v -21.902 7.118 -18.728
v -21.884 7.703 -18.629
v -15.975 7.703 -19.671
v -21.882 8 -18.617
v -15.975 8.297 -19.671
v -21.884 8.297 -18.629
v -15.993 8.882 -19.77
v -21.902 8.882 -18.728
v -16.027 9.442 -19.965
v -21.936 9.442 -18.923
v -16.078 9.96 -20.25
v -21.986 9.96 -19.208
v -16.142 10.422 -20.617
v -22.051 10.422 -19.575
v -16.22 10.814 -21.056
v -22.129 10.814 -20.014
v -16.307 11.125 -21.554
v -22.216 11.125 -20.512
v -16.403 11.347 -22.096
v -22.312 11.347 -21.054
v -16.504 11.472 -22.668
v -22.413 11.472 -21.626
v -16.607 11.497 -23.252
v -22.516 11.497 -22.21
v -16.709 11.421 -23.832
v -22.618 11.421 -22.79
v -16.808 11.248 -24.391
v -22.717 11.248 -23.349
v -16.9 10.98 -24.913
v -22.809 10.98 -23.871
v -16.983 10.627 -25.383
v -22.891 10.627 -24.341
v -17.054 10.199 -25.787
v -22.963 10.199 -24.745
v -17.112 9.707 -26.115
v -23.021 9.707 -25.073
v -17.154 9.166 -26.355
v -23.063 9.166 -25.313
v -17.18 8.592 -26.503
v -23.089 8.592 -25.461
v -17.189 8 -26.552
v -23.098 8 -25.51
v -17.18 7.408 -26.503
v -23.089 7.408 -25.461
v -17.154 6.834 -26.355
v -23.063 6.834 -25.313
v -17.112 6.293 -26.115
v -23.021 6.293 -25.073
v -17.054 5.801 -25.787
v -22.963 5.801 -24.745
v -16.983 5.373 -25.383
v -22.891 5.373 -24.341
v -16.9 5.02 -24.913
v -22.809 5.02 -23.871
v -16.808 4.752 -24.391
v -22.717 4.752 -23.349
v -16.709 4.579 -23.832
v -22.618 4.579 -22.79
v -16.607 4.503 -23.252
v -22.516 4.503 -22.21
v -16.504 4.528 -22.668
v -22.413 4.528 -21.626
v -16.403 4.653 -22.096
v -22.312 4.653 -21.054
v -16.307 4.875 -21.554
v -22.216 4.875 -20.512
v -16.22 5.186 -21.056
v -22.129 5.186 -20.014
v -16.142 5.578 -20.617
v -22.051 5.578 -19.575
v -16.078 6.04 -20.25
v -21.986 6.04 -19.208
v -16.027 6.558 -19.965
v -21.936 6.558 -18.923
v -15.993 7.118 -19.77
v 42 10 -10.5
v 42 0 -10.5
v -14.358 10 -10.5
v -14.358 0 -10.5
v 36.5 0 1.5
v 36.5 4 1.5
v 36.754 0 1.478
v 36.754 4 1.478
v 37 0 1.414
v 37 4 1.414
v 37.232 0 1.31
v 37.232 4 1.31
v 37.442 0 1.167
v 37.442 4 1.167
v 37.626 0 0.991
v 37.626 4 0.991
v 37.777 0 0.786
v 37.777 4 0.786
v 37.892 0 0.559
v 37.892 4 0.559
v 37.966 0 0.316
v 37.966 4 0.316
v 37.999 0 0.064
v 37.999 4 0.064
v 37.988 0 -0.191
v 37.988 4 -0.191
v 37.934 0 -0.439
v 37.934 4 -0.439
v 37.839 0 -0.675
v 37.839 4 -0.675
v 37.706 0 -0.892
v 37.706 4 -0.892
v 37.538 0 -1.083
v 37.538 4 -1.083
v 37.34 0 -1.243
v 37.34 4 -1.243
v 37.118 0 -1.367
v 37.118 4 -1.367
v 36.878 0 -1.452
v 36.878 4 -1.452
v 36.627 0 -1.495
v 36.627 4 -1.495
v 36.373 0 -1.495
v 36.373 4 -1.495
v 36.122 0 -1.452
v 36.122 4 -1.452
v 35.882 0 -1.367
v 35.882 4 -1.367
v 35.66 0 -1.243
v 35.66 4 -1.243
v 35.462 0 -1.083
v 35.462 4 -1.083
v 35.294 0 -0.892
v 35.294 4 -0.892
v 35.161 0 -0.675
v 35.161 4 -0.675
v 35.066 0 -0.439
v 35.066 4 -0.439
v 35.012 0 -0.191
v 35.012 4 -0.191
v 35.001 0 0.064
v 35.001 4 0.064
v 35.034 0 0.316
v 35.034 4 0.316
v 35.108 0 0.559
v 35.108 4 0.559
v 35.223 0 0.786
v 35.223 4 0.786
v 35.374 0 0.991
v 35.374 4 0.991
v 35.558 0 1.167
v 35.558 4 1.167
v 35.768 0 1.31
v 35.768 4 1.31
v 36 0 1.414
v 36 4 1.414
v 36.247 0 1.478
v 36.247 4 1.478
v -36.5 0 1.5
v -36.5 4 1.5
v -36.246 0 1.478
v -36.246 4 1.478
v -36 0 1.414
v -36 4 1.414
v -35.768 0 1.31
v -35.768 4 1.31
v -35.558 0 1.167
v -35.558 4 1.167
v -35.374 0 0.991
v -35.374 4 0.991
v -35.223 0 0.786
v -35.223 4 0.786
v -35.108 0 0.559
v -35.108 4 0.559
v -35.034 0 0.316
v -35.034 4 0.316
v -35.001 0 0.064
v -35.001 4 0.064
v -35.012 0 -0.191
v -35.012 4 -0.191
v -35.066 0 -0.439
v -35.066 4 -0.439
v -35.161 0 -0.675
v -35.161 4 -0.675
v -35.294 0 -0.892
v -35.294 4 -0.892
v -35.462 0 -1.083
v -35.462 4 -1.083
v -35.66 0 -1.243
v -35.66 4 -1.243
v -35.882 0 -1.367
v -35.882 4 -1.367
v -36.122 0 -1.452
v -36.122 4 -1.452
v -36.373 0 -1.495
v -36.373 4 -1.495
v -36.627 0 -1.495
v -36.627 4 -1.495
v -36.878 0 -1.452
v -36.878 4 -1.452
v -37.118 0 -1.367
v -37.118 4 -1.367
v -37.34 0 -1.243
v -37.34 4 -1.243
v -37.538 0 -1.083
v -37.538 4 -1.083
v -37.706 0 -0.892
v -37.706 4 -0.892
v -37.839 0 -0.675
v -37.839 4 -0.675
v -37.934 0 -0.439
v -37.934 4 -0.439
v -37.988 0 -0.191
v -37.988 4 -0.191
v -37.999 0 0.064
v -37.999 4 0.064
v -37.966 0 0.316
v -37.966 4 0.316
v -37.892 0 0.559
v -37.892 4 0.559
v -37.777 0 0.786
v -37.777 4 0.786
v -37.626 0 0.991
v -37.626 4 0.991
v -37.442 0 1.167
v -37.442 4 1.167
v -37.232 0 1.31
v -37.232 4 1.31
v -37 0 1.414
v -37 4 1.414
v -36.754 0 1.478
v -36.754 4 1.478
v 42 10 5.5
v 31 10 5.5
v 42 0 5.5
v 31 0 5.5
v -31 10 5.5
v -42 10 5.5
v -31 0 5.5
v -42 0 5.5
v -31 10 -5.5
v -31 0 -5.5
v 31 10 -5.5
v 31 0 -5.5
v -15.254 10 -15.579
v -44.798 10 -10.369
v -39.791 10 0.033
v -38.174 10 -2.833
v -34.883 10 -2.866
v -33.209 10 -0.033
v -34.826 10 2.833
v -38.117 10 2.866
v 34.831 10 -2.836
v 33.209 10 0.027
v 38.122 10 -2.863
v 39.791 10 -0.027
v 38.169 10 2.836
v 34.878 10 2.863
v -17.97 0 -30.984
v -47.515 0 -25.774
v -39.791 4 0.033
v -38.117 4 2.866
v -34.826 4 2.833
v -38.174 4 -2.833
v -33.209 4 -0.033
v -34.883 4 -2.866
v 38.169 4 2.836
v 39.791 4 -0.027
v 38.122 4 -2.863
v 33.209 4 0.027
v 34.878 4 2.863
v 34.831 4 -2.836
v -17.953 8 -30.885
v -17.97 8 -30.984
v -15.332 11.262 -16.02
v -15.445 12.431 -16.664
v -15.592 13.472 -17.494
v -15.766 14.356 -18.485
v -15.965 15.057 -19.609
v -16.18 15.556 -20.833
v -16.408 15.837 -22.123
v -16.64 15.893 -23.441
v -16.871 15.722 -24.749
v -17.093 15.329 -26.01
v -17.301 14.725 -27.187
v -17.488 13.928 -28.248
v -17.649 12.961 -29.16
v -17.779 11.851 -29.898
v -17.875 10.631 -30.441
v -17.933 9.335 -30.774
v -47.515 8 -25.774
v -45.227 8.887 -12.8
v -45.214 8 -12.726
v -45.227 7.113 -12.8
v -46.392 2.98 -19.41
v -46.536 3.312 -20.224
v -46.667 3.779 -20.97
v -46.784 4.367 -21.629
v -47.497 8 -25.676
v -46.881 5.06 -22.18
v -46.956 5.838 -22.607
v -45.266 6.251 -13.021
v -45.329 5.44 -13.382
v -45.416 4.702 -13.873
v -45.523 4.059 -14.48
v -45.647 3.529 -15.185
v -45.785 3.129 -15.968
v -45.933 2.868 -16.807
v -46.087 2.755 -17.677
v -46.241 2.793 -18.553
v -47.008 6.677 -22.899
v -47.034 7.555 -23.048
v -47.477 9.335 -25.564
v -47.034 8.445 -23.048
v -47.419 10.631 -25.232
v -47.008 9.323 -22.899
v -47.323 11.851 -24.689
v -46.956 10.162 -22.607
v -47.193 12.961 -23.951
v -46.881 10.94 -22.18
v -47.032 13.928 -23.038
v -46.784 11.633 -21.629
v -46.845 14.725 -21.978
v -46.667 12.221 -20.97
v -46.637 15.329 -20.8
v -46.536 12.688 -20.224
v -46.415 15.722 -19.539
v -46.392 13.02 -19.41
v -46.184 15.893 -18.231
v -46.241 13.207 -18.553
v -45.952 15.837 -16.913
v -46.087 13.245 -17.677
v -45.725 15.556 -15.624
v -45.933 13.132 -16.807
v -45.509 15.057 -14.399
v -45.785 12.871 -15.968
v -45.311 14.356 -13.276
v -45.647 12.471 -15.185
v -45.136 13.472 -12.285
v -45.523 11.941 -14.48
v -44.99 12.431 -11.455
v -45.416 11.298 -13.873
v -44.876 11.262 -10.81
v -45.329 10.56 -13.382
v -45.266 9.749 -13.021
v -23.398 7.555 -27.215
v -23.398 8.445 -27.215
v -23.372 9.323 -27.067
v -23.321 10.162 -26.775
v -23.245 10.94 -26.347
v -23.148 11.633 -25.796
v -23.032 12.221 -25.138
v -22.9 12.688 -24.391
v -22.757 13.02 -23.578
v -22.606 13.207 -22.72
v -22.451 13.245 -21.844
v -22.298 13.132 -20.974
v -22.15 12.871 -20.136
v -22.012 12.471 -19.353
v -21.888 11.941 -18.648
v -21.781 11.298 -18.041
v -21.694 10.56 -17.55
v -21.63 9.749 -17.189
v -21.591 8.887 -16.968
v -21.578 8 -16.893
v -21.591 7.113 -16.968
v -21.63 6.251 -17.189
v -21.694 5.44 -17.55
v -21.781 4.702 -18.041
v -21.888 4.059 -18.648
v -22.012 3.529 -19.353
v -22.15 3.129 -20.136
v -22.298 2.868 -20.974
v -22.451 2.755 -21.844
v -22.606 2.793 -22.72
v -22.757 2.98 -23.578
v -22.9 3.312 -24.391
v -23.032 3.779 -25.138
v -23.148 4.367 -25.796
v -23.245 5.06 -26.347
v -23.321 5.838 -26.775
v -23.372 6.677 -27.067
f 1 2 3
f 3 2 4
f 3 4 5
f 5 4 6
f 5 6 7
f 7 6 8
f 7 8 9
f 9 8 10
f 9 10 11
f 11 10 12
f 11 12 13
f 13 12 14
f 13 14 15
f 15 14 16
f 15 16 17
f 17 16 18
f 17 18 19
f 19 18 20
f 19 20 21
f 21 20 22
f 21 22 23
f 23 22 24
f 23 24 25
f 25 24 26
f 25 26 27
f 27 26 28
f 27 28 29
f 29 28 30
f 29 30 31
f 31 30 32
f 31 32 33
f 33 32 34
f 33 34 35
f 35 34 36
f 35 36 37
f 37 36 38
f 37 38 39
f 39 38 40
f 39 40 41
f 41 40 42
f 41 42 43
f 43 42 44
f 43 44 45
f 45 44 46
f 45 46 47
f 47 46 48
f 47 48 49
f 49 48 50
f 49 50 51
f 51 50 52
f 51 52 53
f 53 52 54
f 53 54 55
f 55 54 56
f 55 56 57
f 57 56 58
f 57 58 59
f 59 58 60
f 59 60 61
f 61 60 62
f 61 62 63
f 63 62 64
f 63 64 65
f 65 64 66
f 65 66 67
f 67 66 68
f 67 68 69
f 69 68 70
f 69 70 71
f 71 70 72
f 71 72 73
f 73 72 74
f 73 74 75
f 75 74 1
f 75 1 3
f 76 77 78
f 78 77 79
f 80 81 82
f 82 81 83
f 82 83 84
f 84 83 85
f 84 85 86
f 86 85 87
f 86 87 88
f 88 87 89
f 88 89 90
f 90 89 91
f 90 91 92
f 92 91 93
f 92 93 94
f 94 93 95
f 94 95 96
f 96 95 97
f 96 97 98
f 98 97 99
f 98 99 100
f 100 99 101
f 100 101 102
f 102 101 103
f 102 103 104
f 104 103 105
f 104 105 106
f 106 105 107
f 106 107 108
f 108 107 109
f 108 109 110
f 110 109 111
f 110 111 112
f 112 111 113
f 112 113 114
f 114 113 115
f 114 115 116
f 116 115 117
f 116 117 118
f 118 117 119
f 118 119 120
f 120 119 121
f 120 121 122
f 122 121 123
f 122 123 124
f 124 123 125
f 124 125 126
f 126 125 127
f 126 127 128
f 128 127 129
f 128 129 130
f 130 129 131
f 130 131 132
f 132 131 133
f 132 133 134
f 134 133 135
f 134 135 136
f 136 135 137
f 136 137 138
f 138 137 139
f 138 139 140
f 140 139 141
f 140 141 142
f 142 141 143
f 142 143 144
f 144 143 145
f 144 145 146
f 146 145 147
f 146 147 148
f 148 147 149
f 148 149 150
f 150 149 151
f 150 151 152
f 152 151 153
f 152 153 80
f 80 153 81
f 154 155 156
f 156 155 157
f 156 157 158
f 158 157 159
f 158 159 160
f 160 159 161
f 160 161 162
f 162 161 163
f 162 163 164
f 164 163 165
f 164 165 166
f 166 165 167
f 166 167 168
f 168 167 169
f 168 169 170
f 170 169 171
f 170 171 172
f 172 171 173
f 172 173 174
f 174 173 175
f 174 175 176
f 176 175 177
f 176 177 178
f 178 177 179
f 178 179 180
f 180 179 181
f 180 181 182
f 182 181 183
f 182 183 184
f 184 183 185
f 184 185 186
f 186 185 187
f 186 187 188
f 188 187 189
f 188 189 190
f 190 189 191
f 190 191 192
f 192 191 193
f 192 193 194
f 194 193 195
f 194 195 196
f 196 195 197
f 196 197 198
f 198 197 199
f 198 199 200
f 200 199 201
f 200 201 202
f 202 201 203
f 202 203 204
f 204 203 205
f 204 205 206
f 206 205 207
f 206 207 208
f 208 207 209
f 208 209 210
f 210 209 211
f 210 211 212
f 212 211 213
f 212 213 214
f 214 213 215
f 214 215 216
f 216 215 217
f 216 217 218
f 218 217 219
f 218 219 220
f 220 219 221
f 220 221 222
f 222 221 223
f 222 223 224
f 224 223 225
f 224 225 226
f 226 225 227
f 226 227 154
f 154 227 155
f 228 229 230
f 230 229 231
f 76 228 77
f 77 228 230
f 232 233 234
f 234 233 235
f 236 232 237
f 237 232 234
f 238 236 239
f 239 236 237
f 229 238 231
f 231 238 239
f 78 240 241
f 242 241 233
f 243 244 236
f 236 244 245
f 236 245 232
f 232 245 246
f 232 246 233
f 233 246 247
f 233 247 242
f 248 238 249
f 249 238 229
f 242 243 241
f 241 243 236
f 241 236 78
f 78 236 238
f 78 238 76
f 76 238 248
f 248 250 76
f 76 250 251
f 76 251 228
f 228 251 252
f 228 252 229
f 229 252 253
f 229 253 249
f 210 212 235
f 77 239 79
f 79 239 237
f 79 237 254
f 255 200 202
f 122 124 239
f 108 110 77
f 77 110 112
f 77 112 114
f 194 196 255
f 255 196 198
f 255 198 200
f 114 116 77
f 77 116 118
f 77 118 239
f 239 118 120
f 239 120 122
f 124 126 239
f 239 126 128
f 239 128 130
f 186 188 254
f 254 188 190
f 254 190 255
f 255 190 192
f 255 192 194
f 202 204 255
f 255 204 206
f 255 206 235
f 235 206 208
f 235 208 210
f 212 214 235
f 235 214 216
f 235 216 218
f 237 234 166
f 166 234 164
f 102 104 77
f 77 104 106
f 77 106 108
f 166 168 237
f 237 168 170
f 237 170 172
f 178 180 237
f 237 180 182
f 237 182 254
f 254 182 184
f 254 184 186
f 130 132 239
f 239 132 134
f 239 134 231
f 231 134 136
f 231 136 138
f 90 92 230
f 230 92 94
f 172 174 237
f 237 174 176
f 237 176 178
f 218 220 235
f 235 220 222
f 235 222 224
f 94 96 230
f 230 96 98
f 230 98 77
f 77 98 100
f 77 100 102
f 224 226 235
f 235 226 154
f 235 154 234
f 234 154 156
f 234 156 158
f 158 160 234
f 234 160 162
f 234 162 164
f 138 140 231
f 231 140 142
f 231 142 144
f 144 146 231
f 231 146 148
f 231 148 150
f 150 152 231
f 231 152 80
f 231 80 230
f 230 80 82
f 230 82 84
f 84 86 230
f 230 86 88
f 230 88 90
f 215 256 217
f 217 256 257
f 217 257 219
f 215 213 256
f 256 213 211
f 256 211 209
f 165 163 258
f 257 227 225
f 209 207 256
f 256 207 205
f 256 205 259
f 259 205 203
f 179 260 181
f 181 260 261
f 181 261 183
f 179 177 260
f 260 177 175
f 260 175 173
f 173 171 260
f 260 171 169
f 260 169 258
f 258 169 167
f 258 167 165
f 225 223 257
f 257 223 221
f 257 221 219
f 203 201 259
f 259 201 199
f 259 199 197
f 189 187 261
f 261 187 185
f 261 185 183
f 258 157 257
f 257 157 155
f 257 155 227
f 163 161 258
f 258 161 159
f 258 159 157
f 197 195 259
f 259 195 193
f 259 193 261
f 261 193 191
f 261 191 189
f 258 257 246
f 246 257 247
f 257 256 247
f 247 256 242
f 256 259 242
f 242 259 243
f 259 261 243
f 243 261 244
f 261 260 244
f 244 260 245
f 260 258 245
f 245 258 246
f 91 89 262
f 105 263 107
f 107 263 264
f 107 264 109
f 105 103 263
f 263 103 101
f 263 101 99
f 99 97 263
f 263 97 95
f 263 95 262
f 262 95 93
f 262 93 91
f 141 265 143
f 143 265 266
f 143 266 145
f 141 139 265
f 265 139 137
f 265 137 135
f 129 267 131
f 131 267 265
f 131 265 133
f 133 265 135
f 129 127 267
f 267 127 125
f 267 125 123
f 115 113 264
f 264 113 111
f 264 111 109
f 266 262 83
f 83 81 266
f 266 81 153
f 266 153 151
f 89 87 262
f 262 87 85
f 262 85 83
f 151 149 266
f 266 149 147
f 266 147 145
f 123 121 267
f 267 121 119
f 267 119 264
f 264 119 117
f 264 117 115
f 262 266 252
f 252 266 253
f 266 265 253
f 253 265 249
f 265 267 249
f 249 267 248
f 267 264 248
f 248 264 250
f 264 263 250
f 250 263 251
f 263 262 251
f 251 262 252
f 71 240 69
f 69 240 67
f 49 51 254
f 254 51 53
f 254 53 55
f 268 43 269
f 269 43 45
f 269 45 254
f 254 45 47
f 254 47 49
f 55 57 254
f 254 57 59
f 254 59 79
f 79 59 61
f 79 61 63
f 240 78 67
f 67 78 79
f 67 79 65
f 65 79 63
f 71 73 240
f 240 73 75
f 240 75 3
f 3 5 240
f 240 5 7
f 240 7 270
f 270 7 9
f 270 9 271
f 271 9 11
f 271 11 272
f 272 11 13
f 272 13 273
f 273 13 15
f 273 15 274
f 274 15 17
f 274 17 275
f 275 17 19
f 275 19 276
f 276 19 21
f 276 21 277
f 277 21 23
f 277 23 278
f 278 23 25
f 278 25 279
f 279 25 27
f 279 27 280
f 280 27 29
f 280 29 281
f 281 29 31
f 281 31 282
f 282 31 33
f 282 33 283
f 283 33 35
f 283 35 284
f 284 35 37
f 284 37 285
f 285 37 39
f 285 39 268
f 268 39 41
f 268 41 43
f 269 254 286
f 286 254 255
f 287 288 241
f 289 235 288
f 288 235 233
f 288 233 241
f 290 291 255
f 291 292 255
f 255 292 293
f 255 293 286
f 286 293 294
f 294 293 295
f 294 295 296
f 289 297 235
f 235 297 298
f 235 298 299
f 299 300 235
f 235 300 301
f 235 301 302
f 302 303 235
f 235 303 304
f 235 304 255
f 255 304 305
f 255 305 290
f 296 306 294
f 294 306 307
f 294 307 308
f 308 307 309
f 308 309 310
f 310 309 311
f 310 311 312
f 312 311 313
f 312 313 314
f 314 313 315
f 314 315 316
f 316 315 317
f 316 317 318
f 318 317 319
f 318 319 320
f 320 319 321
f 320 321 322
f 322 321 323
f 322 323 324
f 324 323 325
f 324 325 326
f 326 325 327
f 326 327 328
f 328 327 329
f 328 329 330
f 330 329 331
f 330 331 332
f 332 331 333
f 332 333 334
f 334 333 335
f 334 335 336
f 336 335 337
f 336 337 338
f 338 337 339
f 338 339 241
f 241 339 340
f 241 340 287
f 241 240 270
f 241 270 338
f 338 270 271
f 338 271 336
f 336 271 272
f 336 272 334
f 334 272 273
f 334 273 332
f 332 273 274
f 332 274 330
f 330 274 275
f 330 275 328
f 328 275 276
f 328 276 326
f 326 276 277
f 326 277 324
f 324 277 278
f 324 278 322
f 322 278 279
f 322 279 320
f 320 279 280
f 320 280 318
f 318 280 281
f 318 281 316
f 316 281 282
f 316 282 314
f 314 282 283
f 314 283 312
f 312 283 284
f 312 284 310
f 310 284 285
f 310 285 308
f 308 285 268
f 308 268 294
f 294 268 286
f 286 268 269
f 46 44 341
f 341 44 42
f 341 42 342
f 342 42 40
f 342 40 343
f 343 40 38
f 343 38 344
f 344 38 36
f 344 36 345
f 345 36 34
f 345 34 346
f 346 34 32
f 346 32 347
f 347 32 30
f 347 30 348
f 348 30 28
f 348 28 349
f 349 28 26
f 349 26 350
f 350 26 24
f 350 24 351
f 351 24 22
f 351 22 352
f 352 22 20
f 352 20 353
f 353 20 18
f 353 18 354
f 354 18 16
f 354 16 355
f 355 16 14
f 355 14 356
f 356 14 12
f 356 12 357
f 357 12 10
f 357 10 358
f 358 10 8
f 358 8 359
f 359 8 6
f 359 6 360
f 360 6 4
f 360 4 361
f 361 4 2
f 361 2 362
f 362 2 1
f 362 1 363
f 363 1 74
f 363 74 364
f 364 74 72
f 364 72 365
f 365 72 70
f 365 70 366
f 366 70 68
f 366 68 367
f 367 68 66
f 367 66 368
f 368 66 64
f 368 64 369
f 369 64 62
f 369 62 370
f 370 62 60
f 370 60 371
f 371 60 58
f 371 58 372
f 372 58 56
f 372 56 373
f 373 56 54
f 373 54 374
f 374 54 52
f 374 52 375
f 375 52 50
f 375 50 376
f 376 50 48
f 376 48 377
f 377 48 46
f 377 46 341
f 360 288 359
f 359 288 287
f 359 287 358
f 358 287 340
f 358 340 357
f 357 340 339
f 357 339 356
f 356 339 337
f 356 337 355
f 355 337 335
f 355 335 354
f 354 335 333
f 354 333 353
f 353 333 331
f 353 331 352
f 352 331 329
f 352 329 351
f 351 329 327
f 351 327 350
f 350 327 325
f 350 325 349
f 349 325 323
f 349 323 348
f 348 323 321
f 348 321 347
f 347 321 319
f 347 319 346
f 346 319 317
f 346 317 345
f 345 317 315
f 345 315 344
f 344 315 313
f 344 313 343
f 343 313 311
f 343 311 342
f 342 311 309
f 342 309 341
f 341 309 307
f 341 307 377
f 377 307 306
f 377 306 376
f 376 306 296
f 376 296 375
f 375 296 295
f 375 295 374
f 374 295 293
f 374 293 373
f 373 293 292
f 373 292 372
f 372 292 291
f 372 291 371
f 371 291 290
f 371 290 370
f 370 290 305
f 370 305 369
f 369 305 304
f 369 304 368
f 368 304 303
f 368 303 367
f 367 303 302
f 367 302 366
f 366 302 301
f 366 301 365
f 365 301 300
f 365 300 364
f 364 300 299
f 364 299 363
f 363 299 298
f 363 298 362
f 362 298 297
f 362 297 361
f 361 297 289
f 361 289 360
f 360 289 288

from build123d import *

# Parameters (mm, degrees)
EXTRUDE_1_DEPTH          = 10
SKETCH_2_R               = 1.5
CUT_EXTRUDE_1_DEPTH      = 10
CUT_EXTRUDE_2_DEPTH      = 6
EXTRUDE_2_DEPTH          = 16
CUT_EXTRUDE_3_DEPTH      = 60.059147092
CUT_EXTRUDE_3_DEPTH_BACK = 36.4308247
SKETCH_6_R               = 3.5
CUT_EXTRUDE_4_DEPTH      = 36.4308247
SKETCH_8_R               = 5.25
CUT_EXTRUDE_6_DEPTH      = 24


with BuildPart() as part:
    # 草图1 → 凸台-拉伸1 (new body)
    with BuildSketch(Plane(origin=(0, 0, 0), x_dir=(1, 0, 0), z_dir=(0, 1, 0))):
        Polygon((-42, 5.5), (-42, 10.5), (42, 10.5), (42, 5.5), (42, -5.5), (31, -5.5), (31, 5.5), (-31, 5.5), (-31, -5.5), (-42, -5.5), align=None)
    extrude(amount=EXTRUDE_1_DEPTH)

    # 草图2 → 切除-拉伸1 (cut)
    with BuildSketch(Plane(origin=(0, 10, 0), x_dir=(1, 0, 0), z_dir=(0, 1, 0))):
        with Locations((-36.5, 0)):
            Circle(SKETCH_2_R)
        with Locations((36.5, 0)):
            Circle(SKETCH_2_R)
    extrude(amount=-CUT_EXTRUDE_1_DEPTH, mode=Mode.SUBTRACT)

    # 草图3 → 切除-拉伸2 (cut)
    with BuildSketch(Plane(origin=(0, 10, 0), x_dir=(1, 0, 0), z_dir=(0, 1, 0))):
        Polygon((-34.826211876, -2.833449014), (-33.209267111, 0.032818529), (-34.883055236, 2.866267543), (-38.173788124, 2.833449014), (-39.790732889, -0.032818529), (-38.116944764, -2.866267543), align=None)
        Polygon((38.168661206, -2.836471361), (39.790786858, 0.026867314), (38.122125653, 2.863338675), (34.831338794, 2.836471361), (33.209213142, -0.026867314), (34.877874347, -2.863338675), align=None)
    extrude(amount=-CUT_EXTRUDE_2_DEPTH, mode=Mode.SUBTRACT)

    # 草图4 → 凸台-拉伸2 (add)
    with BuildSketch(Plane(origin=(0, 0, 0), x_dir=(1, 0, 0), z_dir=(0, 1, 0))):
        Polygon((-44.778370843, 26.256924048), (-47.514531989, 25.774465014), (-42, -5.5), (-42, 10.5), (-14.358361399, 10.5), (-17.970229632, 30.983922646), align=None)
    extrude(amount=EXTRUDE_2_DEPTH)

    # 草图5 → 切除-拉伸3 (cut, two sides)
    with BuildSketch(Plane(origin=(-12.129798074, 0, 2.138810671), x_dir=(-0.173648178, 0, -0.984807753), z_dir=(0.984807753, 0, -0.173648178))) as cut_extrude_3_sk:
        with BuildLine():
            Line((33.533704869, 8), (33.633704869, 8))
            Line((33.633704869, 8), (33.633704869, 16))
            Line((33.633704869, 16), (1.87678082, 16))
            Line((1.87678082, 16), (1.87678082, 10))
            Line((1.87678082, 10), (12.833784698, 10))
            Line((12.833784698, 10), (17.991061347, 10))
            ThreePointArc((17.991061347, 10), (26.641949923, 15.83539673), (33.533704869, 8))
        make_face()
    extrude(amount=CUT_EXTRUDE_3_DEPTH, mode=Mode.SUBTRACT)
    extrude(cut_extrude_3_sk.sketch, amount=-CUT_EXTRUDE_3_DEPTH_BACK, mode=Mode.SUBTRACT)

    # 草图6 → 切除-拉伸4 (cut, through all)
    with BuildSketch(Plane(origin=(-12.129798074, 0, 2.138810671), x_dir=(-0.173648178, 0, -0.984807753), z_dir=(0.984807753, 0, -0.173648178))):
        with Locations((25.633704869, 8)):
            Circle(SKETCH_6_R)
    extrude(amount=-CUT_EXTRUDE_4_DEPTH, mode=Mode.SUBTRACT)

    # 草图8 → 切除-拉伸6 (cut)
    with BuildSketch(Plane(origin=(-41.674100431, 0, 7.348268303), x_dir=(0.173648178, 0, 0.984807753), z_dir=(-0.984807753, 0, 0.173648178))):
        with Locations((-25.633704869, 8)):
            Circle(SKETCH_8_R)
    extrude(amount=-CUT_EXTRUDE_6_DEPTH, mode=Mode.SUBTRACT)


solid = part.part
